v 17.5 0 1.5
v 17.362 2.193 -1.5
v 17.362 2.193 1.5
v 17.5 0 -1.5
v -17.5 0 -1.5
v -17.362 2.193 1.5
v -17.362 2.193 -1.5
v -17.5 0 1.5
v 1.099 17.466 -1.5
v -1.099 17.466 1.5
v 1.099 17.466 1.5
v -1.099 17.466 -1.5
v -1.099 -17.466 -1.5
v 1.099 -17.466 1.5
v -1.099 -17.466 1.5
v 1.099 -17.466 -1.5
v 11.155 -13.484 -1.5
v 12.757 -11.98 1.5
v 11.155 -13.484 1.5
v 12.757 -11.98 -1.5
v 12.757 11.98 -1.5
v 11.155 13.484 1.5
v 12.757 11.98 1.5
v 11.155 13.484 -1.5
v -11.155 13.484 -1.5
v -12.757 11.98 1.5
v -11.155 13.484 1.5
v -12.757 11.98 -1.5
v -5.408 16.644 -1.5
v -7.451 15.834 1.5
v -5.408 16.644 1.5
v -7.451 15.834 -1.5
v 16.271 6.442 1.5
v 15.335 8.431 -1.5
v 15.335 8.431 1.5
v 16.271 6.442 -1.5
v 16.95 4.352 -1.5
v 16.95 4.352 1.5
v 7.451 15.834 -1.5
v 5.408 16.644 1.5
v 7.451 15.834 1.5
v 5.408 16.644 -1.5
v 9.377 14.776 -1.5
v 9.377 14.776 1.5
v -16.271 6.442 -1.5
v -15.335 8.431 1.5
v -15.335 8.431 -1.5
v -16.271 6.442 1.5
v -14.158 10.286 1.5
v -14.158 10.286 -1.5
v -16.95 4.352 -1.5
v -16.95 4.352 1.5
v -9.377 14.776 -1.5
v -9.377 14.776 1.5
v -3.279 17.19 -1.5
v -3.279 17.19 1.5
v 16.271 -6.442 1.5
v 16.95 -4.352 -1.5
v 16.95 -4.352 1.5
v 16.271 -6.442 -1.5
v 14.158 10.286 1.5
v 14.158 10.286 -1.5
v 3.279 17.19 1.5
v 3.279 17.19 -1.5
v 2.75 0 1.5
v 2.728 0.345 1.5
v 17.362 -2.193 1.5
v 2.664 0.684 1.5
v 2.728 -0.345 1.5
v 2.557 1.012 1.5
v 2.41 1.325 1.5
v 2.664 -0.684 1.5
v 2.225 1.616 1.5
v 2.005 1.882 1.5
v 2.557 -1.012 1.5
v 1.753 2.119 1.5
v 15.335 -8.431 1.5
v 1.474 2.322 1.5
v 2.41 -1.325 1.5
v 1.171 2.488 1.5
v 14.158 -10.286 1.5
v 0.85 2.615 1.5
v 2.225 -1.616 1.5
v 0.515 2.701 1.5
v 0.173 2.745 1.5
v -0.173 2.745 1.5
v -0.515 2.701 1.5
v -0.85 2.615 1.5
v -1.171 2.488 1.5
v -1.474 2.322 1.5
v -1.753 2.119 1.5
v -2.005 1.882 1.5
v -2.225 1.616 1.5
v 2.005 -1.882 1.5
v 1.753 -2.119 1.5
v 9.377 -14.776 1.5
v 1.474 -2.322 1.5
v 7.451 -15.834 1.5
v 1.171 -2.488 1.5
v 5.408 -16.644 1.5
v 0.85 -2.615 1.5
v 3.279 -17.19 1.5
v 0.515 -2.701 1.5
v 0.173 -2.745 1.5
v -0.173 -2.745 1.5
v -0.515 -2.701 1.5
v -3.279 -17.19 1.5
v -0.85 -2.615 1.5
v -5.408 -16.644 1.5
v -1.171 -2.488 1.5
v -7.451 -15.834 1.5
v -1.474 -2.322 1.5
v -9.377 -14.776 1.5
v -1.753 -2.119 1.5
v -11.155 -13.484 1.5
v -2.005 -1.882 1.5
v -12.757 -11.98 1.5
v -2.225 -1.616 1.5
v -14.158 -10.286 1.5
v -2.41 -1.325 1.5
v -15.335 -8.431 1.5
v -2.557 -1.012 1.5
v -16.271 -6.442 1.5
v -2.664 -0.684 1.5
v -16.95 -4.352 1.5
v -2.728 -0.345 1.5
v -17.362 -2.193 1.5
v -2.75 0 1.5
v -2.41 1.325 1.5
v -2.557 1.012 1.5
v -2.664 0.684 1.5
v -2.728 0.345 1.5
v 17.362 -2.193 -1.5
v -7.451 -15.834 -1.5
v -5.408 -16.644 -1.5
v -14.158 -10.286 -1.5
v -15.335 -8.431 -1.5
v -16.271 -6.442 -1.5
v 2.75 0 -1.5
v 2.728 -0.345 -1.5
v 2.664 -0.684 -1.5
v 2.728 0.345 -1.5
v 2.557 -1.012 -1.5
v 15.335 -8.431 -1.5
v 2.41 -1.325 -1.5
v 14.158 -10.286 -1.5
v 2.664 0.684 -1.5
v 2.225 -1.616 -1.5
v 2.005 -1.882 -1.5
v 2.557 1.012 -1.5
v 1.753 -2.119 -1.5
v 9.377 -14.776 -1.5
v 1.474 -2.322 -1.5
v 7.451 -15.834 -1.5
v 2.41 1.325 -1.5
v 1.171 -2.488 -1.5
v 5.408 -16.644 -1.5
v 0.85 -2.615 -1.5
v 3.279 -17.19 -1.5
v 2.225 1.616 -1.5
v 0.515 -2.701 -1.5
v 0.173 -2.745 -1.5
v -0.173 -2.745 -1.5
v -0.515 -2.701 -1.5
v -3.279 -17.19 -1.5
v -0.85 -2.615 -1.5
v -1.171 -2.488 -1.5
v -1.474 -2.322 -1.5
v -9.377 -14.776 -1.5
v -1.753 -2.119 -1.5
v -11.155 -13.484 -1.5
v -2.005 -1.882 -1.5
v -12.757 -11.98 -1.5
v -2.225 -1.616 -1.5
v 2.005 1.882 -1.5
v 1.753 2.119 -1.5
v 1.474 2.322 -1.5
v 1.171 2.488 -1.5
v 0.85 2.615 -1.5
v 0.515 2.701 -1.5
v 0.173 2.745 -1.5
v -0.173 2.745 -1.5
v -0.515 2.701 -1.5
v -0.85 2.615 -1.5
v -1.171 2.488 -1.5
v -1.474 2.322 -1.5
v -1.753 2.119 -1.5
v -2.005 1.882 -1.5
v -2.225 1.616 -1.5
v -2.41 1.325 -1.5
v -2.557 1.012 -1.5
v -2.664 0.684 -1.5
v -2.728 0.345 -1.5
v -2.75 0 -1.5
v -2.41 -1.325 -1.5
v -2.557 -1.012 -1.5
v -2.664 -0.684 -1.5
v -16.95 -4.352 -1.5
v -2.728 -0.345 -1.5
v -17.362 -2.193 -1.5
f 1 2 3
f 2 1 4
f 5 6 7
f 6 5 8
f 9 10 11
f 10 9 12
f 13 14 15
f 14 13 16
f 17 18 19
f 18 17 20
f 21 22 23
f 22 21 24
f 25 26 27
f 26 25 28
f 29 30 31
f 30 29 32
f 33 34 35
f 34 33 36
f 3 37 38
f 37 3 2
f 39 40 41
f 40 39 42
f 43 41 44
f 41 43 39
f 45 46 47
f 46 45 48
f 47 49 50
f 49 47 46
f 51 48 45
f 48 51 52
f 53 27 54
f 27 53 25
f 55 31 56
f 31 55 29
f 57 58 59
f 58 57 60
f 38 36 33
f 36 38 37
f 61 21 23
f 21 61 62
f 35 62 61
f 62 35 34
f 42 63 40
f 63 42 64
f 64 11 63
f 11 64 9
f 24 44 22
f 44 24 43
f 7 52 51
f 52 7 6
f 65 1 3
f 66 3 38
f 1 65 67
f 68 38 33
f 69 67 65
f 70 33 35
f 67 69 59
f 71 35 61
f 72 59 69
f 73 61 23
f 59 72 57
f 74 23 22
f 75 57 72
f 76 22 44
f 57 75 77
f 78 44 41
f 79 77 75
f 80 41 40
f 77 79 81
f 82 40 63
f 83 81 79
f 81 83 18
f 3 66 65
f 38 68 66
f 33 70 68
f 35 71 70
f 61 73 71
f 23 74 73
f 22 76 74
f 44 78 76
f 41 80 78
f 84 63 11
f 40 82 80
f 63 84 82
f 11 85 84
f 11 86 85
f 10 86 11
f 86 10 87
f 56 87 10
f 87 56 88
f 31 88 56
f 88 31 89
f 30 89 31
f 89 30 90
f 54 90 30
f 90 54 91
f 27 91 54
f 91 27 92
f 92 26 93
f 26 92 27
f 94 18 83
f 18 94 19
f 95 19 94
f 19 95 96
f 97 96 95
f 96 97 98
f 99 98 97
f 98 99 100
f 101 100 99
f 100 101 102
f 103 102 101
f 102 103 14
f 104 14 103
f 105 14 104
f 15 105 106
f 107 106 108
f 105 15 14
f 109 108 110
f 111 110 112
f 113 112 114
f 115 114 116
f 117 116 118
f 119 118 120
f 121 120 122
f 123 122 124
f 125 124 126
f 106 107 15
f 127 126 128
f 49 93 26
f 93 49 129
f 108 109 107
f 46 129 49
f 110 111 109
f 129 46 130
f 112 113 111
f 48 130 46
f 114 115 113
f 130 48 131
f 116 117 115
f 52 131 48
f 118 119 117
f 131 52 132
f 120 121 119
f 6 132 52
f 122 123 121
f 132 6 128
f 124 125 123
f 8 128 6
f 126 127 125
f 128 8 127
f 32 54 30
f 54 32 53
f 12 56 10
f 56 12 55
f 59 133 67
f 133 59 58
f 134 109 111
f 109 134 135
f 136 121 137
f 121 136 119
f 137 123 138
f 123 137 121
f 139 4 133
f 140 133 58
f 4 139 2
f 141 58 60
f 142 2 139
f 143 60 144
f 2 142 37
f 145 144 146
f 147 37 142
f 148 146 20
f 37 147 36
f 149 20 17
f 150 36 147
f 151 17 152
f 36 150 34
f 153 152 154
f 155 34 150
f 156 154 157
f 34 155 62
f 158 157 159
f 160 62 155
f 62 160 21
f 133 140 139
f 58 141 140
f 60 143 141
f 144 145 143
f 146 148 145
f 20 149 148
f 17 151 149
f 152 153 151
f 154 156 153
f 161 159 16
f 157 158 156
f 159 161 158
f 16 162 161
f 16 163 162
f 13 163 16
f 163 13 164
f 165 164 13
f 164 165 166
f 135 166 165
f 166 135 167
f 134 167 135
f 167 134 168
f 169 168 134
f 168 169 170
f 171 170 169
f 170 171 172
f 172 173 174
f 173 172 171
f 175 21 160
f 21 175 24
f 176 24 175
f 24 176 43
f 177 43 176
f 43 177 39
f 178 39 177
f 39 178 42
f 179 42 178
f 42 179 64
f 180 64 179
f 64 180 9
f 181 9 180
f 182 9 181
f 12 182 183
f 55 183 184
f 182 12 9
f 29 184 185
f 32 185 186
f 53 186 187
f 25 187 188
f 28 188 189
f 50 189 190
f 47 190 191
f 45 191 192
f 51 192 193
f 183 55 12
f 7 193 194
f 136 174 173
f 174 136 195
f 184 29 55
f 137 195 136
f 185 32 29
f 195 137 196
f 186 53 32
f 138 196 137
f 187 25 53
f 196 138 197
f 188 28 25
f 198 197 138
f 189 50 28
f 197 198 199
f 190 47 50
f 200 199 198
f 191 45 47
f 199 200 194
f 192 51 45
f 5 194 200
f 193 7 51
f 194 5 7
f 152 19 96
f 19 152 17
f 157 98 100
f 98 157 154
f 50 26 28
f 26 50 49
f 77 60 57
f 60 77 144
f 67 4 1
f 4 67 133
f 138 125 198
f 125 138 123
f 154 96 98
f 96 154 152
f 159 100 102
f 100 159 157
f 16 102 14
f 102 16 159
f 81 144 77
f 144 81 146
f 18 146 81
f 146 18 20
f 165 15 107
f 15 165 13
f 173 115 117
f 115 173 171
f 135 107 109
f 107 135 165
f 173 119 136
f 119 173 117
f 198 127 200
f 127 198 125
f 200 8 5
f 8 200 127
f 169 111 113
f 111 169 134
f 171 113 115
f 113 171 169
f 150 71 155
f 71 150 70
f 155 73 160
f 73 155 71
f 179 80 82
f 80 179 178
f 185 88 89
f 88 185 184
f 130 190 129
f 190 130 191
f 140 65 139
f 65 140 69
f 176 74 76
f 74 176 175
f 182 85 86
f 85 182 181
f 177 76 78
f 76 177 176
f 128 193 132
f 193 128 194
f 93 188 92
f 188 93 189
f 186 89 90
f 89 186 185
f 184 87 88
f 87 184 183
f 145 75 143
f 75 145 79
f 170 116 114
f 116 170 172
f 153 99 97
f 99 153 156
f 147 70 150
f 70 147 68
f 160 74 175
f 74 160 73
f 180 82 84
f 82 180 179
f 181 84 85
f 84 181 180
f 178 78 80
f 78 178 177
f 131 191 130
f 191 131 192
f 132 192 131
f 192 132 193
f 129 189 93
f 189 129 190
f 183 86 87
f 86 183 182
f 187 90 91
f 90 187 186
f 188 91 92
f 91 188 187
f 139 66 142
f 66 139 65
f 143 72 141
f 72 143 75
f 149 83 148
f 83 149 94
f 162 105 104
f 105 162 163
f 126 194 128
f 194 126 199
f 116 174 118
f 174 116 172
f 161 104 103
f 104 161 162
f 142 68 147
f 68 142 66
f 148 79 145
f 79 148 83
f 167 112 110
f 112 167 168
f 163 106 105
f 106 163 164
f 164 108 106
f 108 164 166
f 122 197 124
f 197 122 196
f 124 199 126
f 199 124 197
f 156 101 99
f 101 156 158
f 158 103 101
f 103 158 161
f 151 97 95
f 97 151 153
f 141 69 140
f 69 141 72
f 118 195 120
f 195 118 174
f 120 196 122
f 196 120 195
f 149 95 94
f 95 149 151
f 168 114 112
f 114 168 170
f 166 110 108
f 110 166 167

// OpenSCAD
$fn = 50;


difference() {
	union() {
		translate(v = [0, 0, -1.5000000000]) {
			cylinder(h = 3, r = 17.5000000000);
		}
	}
	union() {
		translate(v = [0, 0, -100.0000000000]) {
			cylinder(h = 200, r = 2.7500000000);
		}
	}
}
